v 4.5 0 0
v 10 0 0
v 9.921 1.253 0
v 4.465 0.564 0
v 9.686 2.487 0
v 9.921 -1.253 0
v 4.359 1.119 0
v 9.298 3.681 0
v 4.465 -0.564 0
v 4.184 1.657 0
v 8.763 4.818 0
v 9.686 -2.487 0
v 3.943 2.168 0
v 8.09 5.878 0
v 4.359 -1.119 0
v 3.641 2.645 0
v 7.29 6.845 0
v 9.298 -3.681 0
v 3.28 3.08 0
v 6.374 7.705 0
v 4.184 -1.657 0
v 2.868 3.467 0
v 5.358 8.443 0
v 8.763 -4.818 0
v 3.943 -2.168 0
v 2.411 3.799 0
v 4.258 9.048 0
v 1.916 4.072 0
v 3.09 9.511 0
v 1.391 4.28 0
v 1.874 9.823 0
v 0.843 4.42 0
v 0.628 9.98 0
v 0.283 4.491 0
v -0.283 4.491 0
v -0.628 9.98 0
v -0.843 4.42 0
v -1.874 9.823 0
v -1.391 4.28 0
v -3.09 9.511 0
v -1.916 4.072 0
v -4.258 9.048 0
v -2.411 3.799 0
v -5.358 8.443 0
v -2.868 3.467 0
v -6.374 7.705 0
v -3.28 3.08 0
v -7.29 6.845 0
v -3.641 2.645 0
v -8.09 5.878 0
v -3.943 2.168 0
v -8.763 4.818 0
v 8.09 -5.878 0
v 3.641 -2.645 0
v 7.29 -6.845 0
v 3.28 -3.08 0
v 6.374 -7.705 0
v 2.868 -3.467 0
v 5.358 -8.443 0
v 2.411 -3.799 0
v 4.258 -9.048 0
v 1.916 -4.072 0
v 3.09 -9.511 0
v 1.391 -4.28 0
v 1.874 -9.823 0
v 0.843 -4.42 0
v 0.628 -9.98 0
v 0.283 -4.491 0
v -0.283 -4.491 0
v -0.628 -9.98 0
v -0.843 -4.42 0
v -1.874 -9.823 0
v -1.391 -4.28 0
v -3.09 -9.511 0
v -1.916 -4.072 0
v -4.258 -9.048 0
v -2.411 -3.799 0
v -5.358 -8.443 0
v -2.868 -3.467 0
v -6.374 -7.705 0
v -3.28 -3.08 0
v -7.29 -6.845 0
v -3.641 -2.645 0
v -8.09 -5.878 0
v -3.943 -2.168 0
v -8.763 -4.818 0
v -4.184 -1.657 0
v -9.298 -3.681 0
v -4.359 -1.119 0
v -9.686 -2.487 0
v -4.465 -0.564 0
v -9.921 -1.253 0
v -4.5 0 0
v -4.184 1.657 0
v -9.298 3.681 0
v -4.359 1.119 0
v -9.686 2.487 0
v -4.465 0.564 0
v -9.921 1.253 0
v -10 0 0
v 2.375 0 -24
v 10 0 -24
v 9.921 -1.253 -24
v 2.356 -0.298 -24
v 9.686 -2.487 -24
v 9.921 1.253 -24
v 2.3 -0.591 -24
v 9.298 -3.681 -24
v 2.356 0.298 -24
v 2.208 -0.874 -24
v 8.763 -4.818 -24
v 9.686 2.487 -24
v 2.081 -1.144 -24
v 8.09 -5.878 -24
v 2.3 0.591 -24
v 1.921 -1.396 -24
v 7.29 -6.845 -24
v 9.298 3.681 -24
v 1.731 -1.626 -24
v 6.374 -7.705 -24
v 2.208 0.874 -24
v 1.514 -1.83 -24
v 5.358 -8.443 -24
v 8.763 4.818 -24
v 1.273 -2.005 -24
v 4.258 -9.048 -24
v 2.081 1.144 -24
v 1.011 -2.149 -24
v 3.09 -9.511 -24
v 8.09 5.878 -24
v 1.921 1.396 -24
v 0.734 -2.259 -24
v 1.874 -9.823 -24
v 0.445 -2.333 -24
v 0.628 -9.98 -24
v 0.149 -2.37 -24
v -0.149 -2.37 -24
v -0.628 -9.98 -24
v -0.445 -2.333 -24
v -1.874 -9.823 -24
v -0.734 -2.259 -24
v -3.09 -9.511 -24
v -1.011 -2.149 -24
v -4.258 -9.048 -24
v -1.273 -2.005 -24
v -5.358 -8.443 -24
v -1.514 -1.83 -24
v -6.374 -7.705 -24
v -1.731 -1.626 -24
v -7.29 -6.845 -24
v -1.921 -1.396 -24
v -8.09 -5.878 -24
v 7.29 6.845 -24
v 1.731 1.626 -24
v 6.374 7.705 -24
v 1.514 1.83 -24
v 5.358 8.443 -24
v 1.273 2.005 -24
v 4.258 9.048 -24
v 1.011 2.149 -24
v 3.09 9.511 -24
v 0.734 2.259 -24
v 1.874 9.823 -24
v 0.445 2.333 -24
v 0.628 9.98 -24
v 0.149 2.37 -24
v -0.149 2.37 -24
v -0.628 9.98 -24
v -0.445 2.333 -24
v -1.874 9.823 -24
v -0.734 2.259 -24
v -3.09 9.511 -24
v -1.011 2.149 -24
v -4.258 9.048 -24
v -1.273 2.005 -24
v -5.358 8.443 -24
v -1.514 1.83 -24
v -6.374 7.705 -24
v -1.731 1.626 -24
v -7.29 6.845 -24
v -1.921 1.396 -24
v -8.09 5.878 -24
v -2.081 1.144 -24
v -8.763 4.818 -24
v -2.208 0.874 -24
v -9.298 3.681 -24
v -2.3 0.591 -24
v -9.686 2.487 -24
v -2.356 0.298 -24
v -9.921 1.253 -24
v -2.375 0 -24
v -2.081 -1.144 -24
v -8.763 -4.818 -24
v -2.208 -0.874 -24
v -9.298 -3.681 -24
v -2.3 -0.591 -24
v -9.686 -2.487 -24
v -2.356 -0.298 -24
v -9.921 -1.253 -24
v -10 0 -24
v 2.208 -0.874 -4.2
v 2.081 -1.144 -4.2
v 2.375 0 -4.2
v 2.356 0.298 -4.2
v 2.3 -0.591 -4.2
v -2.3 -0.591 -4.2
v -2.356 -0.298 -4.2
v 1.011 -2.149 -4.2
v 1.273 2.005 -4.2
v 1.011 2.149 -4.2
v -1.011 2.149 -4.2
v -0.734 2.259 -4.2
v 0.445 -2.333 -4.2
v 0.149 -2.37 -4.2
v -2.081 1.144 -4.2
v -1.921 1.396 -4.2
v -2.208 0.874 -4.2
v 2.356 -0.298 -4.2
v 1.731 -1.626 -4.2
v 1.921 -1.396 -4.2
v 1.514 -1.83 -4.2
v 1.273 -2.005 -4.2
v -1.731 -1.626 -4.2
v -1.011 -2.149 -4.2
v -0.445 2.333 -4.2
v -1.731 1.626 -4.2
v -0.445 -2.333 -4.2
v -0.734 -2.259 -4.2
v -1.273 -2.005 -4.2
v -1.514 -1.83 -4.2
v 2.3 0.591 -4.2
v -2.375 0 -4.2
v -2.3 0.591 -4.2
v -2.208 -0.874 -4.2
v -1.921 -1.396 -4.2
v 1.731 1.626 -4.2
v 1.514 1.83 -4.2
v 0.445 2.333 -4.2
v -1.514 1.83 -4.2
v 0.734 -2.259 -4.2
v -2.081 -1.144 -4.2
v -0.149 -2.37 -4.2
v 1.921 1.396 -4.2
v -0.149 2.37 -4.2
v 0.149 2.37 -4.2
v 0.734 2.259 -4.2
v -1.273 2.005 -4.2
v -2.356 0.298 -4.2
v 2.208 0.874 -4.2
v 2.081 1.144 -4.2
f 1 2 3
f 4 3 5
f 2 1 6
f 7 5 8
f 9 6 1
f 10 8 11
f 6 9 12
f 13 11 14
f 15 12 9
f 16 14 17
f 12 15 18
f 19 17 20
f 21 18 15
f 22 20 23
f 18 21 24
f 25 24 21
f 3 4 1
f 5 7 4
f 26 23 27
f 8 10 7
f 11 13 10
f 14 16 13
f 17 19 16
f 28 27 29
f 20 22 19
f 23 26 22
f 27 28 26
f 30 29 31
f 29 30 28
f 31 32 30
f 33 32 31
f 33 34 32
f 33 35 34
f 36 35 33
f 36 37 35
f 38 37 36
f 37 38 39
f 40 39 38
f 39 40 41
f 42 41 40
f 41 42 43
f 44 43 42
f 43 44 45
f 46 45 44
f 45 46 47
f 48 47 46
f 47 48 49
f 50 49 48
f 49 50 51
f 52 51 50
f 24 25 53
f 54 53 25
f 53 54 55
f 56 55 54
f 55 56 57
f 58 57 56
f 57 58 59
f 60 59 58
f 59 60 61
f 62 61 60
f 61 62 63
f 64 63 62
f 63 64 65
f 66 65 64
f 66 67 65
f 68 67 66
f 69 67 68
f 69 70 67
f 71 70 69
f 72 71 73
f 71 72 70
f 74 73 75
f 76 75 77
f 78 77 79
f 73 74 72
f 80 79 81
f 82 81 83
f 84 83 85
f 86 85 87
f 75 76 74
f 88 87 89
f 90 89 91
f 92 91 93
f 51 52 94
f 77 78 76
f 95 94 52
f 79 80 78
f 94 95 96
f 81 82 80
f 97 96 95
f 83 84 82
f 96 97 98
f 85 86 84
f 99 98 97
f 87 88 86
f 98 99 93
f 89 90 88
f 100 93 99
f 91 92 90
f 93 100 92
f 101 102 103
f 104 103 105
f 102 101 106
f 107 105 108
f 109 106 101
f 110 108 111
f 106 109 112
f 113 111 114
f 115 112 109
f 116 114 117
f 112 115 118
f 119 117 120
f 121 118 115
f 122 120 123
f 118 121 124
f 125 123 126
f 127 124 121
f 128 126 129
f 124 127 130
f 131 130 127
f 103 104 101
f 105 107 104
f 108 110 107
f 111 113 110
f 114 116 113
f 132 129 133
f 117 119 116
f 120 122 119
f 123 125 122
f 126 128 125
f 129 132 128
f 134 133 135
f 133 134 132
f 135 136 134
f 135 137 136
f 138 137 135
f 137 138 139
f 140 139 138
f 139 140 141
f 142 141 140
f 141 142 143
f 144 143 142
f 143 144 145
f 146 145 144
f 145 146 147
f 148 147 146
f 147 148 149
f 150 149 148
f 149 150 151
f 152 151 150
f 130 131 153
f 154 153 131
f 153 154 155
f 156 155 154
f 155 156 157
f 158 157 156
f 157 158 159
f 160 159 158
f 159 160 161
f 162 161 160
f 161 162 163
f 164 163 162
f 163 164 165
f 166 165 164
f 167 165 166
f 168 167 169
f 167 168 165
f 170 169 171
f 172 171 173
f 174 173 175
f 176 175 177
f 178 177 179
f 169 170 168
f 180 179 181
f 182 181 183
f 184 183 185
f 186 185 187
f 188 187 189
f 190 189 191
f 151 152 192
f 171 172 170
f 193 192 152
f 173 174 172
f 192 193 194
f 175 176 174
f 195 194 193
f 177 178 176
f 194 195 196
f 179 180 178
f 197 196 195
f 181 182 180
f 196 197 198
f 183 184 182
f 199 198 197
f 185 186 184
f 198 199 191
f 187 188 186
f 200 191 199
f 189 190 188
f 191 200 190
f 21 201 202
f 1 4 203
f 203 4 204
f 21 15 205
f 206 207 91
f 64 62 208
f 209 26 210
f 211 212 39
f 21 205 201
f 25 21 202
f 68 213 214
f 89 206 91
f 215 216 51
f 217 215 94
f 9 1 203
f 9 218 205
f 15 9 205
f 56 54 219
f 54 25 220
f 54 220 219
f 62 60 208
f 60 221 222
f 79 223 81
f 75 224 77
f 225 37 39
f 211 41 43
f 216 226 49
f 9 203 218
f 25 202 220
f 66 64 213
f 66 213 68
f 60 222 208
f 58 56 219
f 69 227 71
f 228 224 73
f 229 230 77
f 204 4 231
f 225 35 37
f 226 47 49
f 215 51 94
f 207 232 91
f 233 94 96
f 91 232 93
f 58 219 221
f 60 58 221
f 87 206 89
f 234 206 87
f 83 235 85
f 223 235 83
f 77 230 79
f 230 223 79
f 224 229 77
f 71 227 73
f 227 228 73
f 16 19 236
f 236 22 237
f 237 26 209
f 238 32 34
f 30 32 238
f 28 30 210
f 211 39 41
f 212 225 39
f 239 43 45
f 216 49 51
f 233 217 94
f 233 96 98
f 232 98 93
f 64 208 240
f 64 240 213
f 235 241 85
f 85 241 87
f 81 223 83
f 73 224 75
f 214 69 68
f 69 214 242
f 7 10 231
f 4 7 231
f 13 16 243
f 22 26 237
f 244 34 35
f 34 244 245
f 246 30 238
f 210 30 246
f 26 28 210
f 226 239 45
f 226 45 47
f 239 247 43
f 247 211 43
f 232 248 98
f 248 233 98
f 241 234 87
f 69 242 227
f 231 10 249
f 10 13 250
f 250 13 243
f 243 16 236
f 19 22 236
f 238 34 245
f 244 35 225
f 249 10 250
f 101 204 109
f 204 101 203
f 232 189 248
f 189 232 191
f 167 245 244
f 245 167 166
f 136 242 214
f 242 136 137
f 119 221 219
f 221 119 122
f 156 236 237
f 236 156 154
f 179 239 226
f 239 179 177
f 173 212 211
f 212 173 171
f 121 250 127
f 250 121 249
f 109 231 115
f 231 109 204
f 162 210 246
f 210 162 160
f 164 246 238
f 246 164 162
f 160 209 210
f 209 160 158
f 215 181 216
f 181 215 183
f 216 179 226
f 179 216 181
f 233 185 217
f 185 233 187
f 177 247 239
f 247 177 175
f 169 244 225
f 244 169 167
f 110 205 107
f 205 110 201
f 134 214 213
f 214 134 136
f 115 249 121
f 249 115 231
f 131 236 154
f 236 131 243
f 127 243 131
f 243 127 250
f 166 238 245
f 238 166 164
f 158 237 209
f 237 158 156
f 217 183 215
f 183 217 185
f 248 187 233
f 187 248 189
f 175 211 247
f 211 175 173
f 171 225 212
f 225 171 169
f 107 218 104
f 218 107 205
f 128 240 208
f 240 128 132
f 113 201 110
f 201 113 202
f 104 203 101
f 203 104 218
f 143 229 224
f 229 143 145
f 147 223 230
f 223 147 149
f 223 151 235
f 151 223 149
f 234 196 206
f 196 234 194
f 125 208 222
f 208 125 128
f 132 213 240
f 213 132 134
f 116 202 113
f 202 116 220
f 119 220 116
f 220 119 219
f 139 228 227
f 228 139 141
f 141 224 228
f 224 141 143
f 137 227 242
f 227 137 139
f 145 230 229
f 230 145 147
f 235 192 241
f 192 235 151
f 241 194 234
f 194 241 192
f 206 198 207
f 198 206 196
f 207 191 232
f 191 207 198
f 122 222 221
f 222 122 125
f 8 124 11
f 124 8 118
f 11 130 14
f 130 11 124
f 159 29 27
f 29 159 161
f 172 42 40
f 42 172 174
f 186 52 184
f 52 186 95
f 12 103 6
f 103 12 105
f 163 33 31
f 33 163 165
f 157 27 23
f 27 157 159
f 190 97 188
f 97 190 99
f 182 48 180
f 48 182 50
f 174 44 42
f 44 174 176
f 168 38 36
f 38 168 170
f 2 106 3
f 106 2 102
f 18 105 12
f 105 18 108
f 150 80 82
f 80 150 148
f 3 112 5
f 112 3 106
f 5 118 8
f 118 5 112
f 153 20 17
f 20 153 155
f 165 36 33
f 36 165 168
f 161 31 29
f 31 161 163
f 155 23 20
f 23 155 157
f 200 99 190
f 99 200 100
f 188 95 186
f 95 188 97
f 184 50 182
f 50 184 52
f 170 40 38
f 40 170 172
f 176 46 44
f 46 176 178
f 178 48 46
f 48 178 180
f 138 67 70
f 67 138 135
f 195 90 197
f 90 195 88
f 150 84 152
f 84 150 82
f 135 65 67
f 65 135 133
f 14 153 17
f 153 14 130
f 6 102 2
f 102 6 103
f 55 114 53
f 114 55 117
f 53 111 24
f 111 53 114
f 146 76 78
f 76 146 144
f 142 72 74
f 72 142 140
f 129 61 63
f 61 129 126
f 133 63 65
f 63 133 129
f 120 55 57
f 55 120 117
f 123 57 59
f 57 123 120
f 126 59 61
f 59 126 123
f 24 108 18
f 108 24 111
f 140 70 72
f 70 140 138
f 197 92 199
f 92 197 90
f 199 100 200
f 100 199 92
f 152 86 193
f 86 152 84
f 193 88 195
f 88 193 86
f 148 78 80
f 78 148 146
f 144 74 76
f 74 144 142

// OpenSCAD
$fn = 50;


difference() {
	union() {
		translate(v = [0, 0, -24.0000000000]) {
			cylinder(h = 24, r = 10.0000000000);
		}
		cylinder(h = 0, r = 20.0000000000);
	}
	union() {
		translate(v = [0, 0, 0]) {
			rotate(a = [0, 0, 0]) {
				difference() {
					union() {
						#translate(v = [0, 0, -24.0000000000]) {
							cylinder(h = 24, r = 2.2500000000);
						}
						#translate(v = [0, 0, -4.2000000000]) {
							cylinder(h = 4.2000000000, r1 = 2.3750000000, r2 = 4.5000000000);
						}
						#translate(v = [0, 0, -24.0000000000]) {
							cylinder(h = 24, r = 2.3750000000);
						}
						#translate(v = [0, 0, -24.0000000000]) {
							cylinder(h = 24, r = 2.2500000000);
						}
					}
					union();
				}
			}
		}
	}
}
